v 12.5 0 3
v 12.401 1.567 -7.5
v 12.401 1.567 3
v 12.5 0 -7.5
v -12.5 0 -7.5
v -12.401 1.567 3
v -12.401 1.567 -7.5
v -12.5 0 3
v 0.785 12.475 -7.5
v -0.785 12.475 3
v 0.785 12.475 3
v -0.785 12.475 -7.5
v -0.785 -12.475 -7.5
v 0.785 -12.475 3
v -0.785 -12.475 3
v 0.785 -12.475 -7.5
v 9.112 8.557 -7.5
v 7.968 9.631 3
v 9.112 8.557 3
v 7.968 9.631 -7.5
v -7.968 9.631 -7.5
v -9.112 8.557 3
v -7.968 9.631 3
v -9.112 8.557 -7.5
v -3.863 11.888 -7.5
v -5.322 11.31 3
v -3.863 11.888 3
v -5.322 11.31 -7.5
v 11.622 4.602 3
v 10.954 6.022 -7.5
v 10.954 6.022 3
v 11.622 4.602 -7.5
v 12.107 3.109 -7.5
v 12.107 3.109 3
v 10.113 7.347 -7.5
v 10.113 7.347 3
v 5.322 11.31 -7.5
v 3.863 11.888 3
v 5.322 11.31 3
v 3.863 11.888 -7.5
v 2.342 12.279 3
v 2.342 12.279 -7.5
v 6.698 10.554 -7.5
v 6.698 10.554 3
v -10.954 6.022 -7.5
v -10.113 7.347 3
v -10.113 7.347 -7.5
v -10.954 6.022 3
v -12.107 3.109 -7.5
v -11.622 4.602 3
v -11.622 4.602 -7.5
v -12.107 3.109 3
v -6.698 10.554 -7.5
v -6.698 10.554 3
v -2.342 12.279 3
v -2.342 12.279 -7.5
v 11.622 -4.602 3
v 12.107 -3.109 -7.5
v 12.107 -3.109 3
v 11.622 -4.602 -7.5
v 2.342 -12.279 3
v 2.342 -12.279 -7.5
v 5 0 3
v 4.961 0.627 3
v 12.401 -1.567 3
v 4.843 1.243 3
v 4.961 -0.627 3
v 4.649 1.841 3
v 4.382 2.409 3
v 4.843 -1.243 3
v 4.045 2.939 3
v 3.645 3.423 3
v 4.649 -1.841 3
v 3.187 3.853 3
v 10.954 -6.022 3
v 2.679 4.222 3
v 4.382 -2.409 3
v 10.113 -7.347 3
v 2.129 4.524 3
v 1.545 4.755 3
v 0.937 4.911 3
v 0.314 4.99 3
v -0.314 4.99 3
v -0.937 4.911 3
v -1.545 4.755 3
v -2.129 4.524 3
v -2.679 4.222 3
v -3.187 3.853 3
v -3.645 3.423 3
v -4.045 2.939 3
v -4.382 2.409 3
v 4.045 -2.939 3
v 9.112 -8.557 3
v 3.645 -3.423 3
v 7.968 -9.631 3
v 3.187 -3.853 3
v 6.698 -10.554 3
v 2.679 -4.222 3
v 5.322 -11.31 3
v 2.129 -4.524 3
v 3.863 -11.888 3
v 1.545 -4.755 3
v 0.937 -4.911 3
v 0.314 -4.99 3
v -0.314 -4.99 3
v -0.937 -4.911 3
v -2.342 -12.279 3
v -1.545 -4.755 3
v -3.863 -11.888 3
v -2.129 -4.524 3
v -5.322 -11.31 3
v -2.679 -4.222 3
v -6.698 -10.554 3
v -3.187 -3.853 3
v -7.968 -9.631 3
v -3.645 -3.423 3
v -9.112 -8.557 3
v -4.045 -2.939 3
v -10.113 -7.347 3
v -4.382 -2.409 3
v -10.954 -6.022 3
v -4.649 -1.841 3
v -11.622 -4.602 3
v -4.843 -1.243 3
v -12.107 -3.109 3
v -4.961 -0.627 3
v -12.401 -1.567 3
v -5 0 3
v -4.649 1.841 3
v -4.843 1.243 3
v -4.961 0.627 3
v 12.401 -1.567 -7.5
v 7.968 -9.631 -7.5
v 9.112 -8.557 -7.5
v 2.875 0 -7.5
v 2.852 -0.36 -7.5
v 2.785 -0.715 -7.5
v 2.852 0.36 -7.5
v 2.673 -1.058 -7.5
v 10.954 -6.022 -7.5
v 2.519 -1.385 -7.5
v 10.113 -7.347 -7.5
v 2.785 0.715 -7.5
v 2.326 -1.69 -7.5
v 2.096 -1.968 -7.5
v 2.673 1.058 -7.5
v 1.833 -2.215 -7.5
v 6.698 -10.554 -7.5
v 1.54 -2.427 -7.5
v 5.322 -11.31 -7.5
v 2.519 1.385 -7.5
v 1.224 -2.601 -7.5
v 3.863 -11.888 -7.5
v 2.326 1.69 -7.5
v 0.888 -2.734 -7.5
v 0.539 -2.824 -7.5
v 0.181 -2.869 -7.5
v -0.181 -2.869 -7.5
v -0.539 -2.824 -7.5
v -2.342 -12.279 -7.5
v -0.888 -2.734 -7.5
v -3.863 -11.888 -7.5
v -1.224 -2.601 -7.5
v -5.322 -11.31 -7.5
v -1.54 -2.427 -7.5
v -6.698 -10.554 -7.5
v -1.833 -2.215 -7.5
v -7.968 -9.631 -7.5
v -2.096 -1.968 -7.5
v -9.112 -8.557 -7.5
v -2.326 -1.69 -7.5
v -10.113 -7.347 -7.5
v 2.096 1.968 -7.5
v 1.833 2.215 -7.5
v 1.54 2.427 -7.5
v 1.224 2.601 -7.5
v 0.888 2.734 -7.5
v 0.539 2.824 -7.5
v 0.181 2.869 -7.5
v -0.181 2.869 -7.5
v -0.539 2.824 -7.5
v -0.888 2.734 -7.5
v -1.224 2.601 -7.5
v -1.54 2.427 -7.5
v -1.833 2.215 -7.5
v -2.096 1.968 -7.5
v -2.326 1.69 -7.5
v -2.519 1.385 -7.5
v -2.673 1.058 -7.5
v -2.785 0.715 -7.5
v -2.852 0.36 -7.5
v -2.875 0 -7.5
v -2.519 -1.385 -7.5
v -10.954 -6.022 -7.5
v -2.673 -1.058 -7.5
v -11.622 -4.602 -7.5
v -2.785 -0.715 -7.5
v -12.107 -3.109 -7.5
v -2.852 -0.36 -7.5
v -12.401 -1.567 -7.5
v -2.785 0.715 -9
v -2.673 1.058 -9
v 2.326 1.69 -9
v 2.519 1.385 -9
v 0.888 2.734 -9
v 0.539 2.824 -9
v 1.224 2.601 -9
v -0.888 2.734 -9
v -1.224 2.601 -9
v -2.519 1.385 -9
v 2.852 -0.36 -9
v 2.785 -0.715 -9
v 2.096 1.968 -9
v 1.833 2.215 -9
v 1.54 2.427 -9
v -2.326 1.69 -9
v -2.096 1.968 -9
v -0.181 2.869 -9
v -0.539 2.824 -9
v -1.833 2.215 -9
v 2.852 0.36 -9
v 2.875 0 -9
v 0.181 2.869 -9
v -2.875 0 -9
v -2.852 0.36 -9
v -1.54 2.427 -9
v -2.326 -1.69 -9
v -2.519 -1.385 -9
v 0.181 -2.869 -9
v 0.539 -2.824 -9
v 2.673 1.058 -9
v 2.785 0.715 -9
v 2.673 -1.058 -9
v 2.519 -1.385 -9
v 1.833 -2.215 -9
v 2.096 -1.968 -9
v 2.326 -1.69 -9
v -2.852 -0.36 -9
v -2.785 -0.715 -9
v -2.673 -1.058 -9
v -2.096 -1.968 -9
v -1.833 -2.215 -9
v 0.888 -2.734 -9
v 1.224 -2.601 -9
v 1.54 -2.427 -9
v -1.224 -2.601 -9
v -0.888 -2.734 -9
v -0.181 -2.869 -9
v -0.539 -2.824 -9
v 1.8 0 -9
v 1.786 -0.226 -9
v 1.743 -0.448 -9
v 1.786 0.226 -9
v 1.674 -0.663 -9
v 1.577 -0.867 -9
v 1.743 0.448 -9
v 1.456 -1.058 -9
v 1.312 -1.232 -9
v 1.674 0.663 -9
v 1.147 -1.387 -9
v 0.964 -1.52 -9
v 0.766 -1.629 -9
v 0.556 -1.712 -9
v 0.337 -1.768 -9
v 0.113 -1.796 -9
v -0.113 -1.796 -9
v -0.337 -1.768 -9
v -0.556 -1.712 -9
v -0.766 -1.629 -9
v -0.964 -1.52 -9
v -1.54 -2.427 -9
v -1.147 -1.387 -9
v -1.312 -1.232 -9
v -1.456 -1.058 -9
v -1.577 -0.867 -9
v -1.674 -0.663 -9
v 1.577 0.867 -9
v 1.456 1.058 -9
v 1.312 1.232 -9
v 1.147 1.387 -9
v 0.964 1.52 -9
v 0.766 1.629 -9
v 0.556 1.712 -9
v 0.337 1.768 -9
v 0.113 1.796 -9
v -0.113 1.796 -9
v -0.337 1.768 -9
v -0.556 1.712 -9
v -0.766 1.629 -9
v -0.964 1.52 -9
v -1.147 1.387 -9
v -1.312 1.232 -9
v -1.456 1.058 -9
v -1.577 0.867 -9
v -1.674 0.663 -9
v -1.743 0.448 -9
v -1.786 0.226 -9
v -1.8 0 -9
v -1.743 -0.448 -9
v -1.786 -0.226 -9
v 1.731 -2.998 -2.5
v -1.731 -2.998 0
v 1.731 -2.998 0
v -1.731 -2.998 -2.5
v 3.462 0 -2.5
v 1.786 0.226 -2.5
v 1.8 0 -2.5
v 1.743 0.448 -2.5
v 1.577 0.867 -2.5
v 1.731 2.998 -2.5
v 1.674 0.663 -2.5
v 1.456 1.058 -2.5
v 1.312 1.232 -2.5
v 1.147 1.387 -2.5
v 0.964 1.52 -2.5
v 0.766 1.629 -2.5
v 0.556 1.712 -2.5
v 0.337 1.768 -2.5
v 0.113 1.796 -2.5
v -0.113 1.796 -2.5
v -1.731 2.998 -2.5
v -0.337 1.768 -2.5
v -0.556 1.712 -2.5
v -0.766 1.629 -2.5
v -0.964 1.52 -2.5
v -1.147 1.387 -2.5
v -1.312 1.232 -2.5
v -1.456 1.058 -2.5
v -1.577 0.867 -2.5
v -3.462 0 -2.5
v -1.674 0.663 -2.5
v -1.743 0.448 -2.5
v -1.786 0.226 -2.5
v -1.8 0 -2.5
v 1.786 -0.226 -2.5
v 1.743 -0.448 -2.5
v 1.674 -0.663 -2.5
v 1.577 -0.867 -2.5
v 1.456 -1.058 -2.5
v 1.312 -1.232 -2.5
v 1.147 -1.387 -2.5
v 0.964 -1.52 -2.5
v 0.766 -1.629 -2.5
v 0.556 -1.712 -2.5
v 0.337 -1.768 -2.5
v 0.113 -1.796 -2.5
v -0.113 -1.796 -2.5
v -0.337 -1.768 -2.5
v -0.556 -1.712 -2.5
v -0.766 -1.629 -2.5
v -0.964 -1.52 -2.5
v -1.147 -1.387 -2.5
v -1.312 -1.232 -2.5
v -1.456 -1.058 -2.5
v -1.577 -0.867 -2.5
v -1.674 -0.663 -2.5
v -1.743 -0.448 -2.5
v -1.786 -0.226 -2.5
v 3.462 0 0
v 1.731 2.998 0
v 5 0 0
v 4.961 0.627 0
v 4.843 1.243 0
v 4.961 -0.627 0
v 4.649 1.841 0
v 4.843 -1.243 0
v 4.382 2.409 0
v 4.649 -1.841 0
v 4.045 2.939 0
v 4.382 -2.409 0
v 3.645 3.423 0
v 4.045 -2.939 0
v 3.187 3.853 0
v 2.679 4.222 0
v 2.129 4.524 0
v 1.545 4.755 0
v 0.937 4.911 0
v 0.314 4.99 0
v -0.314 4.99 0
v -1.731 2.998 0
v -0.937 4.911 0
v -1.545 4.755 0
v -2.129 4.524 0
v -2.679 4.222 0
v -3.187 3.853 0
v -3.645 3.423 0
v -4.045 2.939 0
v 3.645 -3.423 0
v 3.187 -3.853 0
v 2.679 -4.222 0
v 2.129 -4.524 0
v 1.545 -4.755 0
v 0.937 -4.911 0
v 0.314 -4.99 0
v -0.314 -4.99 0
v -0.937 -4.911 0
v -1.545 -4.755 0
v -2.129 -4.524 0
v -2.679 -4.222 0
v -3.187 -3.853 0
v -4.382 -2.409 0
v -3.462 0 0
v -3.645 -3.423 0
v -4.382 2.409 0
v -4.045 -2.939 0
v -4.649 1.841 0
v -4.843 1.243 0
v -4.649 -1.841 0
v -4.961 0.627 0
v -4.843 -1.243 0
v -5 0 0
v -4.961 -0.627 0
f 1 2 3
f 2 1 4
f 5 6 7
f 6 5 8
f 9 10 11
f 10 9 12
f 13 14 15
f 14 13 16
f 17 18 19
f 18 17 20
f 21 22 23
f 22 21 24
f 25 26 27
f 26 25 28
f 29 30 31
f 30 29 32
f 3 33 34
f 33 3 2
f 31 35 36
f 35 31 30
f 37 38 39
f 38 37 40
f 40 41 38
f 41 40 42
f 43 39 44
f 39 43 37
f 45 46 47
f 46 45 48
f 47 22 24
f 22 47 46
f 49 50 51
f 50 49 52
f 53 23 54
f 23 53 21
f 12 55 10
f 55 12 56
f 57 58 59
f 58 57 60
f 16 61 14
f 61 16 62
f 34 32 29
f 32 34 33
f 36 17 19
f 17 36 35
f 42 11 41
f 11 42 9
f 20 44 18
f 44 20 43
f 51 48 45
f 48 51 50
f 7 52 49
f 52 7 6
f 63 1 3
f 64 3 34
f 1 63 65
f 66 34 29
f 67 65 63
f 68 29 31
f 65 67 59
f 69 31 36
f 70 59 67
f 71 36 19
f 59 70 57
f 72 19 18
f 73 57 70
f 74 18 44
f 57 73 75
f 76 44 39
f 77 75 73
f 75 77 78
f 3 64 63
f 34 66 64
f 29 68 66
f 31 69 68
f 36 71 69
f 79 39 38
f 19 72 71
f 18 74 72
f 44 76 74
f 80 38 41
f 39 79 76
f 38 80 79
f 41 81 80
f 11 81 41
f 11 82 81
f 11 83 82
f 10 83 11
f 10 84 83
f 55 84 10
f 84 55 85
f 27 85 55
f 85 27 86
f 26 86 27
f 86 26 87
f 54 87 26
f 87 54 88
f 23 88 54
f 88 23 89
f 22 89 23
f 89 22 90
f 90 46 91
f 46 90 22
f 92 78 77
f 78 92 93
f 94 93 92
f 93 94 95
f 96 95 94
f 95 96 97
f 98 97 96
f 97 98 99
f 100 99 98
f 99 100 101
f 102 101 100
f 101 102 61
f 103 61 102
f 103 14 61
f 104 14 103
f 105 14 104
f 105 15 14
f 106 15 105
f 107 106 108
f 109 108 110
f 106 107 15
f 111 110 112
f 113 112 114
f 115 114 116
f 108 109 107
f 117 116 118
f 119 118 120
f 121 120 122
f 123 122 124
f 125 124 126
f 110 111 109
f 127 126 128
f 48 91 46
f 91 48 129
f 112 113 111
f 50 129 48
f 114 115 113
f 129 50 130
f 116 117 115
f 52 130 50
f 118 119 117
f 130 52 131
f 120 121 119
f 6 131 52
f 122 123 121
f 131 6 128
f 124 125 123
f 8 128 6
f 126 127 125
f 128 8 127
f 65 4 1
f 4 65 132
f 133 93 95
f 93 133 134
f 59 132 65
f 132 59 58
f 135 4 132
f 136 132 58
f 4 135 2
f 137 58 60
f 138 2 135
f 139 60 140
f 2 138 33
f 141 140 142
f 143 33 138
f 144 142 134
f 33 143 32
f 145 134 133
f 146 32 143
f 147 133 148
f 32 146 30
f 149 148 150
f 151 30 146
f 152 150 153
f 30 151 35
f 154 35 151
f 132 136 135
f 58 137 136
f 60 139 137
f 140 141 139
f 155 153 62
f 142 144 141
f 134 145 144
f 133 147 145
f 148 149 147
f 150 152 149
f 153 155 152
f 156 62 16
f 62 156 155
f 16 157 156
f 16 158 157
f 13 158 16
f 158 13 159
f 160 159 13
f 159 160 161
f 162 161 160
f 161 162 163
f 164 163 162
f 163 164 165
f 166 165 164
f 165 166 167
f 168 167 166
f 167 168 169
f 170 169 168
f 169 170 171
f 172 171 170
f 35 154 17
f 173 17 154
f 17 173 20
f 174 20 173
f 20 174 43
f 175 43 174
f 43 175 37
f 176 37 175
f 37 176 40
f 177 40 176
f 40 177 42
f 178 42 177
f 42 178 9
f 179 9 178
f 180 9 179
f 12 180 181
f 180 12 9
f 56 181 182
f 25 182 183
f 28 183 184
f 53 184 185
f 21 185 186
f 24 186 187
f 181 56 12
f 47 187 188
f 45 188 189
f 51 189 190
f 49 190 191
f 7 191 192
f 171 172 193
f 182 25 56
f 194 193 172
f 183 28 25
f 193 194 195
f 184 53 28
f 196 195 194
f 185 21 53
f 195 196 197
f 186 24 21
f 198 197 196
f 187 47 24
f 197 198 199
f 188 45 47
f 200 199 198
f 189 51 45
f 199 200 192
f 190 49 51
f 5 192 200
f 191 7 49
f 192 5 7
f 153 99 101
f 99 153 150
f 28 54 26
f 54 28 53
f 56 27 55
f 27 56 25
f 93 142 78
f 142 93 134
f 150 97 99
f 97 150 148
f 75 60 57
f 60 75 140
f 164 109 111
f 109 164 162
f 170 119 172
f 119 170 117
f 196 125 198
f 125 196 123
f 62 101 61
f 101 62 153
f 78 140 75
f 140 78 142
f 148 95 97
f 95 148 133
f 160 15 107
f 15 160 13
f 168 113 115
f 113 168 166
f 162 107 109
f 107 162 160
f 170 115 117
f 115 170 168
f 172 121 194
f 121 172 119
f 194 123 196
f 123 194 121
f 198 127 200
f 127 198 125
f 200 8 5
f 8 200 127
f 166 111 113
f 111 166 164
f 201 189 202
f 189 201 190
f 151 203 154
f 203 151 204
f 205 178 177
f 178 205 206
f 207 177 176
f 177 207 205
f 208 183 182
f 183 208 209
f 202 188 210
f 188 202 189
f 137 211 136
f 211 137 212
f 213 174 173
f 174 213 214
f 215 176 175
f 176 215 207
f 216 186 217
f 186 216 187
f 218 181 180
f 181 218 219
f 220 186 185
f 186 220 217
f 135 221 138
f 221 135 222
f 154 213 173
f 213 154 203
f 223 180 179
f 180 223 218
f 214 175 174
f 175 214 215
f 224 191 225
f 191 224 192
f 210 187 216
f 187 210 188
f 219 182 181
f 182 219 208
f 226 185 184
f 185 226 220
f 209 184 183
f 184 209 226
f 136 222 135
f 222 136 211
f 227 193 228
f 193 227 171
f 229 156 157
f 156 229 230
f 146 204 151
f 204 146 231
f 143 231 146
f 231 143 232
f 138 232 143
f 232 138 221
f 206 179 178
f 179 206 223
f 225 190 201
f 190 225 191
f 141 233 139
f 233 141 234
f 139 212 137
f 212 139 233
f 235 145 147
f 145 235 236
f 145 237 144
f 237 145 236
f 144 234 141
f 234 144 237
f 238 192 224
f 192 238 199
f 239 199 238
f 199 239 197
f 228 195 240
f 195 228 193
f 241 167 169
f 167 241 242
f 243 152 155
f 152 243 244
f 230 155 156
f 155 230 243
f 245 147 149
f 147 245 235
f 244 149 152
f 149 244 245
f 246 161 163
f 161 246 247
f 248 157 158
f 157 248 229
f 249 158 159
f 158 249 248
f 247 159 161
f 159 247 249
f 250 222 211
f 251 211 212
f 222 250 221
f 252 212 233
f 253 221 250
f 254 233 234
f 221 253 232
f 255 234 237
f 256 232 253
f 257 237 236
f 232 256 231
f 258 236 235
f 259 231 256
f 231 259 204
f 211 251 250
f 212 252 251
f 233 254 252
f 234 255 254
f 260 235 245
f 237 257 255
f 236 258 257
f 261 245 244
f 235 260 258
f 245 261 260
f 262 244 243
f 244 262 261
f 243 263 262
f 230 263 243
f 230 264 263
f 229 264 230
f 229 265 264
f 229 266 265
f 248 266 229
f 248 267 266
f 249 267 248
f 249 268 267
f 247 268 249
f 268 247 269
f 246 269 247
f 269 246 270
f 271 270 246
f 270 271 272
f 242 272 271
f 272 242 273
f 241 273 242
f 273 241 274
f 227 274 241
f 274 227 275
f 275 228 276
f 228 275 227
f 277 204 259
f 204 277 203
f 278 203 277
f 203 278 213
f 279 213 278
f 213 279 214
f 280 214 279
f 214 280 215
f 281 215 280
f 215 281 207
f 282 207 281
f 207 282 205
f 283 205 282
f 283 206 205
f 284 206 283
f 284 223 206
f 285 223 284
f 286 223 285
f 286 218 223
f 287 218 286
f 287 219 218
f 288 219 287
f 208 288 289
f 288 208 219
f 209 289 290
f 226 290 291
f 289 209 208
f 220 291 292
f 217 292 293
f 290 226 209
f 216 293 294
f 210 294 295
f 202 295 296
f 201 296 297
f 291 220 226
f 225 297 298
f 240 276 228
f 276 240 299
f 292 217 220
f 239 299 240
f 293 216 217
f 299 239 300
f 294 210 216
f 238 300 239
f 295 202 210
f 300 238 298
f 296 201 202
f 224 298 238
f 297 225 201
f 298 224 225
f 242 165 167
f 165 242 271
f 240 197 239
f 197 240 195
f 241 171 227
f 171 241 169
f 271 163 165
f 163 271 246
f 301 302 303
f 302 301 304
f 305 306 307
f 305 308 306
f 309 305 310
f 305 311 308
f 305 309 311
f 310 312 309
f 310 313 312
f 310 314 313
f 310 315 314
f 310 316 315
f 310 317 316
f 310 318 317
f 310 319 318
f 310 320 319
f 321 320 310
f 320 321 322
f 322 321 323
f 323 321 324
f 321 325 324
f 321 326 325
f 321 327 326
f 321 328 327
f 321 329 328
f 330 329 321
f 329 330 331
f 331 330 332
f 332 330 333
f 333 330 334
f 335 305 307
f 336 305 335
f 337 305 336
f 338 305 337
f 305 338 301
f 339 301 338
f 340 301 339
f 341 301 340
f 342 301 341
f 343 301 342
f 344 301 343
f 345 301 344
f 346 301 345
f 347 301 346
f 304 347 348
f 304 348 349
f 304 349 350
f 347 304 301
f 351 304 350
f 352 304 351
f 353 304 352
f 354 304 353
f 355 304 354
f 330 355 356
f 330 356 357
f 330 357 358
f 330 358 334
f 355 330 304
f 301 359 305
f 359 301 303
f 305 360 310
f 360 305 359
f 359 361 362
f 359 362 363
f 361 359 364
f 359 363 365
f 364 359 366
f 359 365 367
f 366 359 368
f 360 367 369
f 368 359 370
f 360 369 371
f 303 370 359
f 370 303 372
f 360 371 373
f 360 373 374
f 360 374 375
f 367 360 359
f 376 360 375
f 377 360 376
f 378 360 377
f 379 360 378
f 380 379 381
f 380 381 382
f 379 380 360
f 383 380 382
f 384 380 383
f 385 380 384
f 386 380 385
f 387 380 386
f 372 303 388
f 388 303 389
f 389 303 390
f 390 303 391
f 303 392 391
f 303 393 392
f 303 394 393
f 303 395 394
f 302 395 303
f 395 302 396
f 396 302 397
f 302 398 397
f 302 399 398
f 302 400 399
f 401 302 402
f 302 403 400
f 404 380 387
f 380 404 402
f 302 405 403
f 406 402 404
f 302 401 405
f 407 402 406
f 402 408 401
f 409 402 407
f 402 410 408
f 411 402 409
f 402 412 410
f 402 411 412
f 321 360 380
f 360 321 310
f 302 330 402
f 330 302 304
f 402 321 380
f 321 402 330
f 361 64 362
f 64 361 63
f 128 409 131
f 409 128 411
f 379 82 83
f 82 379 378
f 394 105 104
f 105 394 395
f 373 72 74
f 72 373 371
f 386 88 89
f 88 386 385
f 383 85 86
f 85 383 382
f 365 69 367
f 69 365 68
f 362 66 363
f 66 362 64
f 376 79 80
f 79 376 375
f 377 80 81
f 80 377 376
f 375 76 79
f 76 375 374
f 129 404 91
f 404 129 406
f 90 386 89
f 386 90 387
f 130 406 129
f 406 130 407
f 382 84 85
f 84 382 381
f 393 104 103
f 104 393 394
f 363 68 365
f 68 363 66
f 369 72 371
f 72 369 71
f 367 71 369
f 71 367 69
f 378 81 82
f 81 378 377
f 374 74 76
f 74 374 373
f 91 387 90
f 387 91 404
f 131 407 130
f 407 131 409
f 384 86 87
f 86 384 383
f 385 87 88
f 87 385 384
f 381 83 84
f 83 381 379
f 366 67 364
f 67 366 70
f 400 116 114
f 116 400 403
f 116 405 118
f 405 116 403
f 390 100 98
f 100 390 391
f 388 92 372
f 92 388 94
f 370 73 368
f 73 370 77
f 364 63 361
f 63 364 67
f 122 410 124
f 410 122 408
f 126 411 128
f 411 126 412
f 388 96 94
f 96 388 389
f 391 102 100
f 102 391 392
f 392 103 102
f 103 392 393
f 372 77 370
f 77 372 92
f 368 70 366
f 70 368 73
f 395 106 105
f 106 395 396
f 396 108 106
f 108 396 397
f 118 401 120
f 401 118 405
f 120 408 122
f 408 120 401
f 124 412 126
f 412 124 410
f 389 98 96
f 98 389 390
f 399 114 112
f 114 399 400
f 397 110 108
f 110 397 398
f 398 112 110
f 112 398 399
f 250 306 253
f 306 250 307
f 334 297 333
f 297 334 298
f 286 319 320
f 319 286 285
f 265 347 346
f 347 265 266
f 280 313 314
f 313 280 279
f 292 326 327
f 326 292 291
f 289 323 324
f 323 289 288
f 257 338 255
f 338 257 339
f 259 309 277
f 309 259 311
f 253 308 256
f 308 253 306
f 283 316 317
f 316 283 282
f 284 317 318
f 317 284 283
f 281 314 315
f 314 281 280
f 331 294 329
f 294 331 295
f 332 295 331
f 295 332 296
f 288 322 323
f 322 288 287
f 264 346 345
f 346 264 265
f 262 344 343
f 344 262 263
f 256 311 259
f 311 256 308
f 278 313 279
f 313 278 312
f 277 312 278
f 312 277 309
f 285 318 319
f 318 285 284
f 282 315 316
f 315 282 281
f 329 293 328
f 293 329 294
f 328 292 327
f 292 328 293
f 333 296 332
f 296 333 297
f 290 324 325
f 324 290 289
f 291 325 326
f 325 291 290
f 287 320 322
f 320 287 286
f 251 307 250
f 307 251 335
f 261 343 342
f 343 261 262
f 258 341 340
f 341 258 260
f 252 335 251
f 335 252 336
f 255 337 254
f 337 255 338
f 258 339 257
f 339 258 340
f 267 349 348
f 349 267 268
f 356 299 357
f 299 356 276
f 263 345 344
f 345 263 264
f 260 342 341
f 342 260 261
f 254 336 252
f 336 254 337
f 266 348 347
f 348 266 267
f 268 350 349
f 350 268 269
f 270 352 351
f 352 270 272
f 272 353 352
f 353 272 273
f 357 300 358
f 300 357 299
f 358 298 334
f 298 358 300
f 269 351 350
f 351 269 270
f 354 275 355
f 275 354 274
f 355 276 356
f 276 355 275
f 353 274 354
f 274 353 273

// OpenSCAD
$fn = 50;

difference() {
	union() {
		translate(v = [0, 0, -7.5]) {
			cylinder(h = 10.5, r = 12.5);
		}
		#translate(v = [0, 0, -9.0]) {
			cylinder(h = 9, r = 2.875);
		}
	}
	union() {
		translate(v = [0, 0, 0]) {
			rotate(a = [0, 0, 0]) {
				difference() {
					union() {
						translate(v = [0, 0, -2.5]) {
							linear_extrude(height = 2.5) {
								polygon(points = [[3.4619999999999997, 0.0], [1.7310000000000003, 2.9981799479017264], [-1.7309999999999992, 2.9981799479017264], [-3.4619999999999997, 4.2397272186481365e-16], [-1.7310000000000014, -2.998179947901726], [1.7309999999999977, -2.9981799479017277]]);
							}
						}
					}
					union();
				}
			}
		}
		#cylinder(h = 3, r = 5.0);
		#translate(v = [0, 0, -100.0]) {
			cylinder(h = 200, r = 1.8);
		}
	}
}
